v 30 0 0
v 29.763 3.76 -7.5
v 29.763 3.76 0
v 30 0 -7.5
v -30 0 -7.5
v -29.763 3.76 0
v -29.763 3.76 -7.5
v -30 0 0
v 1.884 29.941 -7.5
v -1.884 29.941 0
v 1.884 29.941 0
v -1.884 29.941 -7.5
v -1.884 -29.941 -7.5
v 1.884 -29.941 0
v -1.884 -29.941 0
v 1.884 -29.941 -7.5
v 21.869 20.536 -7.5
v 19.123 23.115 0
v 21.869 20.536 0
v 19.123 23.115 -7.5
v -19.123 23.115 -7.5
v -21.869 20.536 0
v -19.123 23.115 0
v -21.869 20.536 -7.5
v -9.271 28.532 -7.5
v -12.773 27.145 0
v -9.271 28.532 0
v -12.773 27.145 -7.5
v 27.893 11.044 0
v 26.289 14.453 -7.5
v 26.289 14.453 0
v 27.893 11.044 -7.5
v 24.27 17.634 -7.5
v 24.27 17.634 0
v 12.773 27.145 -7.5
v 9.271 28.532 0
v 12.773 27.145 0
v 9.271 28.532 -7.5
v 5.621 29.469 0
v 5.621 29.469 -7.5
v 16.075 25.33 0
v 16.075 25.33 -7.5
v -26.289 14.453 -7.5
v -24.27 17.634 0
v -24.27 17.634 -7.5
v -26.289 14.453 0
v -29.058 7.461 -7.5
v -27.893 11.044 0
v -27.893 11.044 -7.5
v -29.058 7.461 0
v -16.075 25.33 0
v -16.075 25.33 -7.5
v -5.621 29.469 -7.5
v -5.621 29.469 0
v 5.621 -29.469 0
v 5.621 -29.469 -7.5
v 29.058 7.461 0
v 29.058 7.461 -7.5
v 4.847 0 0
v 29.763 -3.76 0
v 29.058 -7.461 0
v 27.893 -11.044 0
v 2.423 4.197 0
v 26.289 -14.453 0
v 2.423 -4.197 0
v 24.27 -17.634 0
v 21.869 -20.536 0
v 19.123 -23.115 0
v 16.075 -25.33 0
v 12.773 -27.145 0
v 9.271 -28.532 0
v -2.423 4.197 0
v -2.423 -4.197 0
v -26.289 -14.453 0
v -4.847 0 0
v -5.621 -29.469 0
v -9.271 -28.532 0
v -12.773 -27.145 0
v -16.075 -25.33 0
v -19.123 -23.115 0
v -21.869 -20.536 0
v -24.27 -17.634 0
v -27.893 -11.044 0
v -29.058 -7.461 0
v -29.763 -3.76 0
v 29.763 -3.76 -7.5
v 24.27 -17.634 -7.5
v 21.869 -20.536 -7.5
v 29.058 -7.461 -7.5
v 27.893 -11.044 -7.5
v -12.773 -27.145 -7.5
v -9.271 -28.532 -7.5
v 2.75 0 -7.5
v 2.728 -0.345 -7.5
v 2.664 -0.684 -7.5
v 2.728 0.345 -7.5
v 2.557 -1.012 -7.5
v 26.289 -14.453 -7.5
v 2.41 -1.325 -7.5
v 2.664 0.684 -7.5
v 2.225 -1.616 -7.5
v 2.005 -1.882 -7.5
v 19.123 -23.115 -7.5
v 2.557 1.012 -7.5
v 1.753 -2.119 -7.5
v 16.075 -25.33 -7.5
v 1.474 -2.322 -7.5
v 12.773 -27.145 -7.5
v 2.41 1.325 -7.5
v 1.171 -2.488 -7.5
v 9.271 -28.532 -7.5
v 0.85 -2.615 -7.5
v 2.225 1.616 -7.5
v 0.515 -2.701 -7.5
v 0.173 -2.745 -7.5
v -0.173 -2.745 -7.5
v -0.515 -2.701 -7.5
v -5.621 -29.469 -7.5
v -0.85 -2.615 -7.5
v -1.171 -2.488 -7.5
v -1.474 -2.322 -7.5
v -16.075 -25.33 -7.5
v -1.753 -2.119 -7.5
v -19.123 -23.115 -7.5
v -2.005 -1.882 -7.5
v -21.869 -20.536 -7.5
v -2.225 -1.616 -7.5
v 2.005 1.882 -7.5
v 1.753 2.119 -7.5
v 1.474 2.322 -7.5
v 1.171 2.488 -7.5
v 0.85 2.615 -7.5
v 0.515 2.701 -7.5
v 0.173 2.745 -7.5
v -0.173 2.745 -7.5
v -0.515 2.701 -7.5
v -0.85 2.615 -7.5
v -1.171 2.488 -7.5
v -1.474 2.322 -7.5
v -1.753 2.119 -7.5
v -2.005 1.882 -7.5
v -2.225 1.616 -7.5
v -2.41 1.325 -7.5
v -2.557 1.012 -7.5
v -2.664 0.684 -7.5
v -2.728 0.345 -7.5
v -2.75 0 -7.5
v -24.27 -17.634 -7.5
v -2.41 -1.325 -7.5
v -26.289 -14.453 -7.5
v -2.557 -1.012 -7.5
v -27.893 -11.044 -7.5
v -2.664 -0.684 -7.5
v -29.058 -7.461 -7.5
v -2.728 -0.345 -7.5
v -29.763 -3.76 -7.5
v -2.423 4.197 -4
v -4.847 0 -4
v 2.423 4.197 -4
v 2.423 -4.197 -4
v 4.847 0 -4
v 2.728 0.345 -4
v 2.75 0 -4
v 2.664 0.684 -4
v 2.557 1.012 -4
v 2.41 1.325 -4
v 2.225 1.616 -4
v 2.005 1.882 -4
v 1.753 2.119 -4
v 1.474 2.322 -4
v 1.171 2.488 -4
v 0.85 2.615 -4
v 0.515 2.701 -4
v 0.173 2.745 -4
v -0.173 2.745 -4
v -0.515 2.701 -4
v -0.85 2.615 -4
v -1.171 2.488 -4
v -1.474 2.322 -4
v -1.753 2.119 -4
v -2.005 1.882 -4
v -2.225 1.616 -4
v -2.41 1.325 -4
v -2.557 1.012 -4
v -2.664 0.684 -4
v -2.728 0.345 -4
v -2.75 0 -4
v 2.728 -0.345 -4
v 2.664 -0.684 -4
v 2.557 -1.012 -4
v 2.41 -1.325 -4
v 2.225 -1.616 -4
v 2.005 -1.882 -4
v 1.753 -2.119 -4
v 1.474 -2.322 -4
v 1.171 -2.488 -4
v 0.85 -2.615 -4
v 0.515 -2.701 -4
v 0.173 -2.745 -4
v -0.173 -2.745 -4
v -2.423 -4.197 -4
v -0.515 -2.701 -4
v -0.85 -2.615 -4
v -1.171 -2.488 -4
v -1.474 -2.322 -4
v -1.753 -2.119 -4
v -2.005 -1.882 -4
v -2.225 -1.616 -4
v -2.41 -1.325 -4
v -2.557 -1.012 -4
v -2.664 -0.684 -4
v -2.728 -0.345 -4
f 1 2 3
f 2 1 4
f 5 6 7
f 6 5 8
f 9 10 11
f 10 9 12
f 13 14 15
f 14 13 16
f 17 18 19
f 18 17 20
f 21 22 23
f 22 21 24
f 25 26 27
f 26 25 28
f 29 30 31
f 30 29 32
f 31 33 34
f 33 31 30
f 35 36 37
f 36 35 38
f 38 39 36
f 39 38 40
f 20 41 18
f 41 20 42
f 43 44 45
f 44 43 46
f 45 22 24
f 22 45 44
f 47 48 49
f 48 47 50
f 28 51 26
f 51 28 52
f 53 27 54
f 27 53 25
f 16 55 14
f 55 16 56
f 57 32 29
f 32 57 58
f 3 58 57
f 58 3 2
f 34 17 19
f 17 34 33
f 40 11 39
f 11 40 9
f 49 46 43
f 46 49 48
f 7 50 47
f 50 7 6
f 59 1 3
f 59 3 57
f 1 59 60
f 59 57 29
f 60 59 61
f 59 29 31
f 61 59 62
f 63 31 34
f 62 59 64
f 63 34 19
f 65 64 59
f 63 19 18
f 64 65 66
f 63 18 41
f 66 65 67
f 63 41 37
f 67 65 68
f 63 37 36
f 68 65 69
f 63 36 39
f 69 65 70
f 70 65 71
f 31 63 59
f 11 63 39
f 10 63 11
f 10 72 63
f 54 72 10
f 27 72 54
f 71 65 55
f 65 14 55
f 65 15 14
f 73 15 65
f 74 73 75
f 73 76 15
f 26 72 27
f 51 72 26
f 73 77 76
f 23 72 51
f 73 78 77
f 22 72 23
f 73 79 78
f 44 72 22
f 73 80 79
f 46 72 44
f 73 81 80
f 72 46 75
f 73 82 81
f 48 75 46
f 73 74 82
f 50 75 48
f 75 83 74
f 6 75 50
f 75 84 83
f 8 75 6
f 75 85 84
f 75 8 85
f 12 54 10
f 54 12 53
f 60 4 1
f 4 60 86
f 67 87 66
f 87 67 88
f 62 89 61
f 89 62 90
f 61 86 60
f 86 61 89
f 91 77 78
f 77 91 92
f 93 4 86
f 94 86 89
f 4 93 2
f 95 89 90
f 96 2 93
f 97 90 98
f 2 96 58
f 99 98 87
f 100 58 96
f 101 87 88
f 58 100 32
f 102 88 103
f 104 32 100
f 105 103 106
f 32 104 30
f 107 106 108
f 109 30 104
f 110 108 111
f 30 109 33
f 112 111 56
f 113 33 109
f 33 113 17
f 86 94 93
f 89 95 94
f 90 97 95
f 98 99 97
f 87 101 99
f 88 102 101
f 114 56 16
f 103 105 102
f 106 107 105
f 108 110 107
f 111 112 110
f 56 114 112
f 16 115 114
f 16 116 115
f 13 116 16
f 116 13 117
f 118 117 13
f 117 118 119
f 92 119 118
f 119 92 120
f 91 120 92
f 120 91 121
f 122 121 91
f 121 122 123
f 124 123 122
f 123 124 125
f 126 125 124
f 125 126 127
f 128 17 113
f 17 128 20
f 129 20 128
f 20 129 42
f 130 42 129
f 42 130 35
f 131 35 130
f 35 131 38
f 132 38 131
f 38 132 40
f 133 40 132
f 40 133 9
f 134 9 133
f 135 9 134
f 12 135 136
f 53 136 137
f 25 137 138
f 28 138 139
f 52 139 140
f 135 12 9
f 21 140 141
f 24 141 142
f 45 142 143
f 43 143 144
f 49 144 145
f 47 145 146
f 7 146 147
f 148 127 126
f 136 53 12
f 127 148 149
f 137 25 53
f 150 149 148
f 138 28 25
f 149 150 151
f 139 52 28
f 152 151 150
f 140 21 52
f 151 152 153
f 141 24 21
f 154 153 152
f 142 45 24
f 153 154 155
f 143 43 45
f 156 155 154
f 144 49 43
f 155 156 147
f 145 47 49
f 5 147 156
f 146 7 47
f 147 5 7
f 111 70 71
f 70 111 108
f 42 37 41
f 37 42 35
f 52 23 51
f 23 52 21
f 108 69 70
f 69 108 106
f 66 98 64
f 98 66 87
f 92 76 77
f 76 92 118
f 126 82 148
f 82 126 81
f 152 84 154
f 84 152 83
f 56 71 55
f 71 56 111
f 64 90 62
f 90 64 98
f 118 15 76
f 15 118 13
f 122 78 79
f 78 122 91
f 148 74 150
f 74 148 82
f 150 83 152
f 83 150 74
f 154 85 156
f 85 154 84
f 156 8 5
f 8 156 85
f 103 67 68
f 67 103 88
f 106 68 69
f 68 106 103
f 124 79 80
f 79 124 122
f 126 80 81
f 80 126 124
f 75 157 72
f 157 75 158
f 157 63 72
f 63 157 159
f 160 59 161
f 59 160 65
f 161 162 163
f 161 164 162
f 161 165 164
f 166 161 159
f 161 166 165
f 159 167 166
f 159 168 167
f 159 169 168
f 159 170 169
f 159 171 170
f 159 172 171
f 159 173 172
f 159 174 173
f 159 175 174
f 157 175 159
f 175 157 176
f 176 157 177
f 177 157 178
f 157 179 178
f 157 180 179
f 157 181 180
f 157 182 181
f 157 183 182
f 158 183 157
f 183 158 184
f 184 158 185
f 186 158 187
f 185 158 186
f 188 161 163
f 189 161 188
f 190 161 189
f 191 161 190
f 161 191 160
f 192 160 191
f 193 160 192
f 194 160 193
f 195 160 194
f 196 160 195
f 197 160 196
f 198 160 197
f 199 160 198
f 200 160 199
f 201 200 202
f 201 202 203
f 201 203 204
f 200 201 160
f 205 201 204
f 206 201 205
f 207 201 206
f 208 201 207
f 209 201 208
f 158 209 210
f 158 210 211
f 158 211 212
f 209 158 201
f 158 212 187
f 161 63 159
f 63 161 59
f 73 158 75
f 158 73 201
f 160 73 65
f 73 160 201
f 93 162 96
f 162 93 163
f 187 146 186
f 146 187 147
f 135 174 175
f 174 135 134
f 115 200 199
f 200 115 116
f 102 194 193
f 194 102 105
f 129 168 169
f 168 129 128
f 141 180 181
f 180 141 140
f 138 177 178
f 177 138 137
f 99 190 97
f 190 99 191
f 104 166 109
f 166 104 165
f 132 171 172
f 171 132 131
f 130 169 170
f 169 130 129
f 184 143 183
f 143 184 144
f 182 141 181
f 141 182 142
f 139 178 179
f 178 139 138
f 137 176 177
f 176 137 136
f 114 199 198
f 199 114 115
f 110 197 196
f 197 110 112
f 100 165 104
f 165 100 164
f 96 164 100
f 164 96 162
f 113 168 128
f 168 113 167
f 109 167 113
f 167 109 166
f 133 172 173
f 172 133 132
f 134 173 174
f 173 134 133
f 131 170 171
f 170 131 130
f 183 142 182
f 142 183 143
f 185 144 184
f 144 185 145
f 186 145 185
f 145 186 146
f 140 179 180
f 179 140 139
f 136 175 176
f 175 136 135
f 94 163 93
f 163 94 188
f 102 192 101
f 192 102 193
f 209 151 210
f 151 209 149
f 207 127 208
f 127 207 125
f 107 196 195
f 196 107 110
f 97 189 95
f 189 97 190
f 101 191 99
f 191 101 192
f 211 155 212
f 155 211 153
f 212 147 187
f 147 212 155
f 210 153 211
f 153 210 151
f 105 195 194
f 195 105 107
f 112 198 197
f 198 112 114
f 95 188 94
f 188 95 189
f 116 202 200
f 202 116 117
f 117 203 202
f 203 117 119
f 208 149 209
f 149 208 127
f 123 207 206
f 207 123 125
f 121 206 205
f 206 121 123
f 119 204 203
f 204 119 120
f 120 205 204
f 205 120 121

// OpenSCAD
$fn = 50;


difference() {
	union() {
		translate(v = [0, 0, -7.5000000000]) {
			cylinder(h = 7.5000000000, r = 30.0000000000);
		}
		translate(v = [0, 0, -6.0000000000]) {
			cylinder(h = 6, r = 2.8750000000);
		}
	}
	union() {
		translate(v = [0, 0, 0]) {
			rotate(a = [0, 0, 0]) {
				difference() {
					union() {
						translate(v = [0, 0, -4]) {
							linear_extrude(height = 4) {
								polygon(points = [[4.8468000000, 0.0000000000], [2.4234000000, 4.1974519271], [-2.4234000000, 4.1974519271], [-4.8468000000, 0.0000000000], [-2.4234000000, -4.1974519271], [2.4234000000, -4.1974519271]]);
							}
						}
					}
					union();
				}
			}
		}
		#translate(v = [0, 0, -100.0000000000]) {
			cylinder(h = 200, r = 2.7500000000);
		}
	}
}
